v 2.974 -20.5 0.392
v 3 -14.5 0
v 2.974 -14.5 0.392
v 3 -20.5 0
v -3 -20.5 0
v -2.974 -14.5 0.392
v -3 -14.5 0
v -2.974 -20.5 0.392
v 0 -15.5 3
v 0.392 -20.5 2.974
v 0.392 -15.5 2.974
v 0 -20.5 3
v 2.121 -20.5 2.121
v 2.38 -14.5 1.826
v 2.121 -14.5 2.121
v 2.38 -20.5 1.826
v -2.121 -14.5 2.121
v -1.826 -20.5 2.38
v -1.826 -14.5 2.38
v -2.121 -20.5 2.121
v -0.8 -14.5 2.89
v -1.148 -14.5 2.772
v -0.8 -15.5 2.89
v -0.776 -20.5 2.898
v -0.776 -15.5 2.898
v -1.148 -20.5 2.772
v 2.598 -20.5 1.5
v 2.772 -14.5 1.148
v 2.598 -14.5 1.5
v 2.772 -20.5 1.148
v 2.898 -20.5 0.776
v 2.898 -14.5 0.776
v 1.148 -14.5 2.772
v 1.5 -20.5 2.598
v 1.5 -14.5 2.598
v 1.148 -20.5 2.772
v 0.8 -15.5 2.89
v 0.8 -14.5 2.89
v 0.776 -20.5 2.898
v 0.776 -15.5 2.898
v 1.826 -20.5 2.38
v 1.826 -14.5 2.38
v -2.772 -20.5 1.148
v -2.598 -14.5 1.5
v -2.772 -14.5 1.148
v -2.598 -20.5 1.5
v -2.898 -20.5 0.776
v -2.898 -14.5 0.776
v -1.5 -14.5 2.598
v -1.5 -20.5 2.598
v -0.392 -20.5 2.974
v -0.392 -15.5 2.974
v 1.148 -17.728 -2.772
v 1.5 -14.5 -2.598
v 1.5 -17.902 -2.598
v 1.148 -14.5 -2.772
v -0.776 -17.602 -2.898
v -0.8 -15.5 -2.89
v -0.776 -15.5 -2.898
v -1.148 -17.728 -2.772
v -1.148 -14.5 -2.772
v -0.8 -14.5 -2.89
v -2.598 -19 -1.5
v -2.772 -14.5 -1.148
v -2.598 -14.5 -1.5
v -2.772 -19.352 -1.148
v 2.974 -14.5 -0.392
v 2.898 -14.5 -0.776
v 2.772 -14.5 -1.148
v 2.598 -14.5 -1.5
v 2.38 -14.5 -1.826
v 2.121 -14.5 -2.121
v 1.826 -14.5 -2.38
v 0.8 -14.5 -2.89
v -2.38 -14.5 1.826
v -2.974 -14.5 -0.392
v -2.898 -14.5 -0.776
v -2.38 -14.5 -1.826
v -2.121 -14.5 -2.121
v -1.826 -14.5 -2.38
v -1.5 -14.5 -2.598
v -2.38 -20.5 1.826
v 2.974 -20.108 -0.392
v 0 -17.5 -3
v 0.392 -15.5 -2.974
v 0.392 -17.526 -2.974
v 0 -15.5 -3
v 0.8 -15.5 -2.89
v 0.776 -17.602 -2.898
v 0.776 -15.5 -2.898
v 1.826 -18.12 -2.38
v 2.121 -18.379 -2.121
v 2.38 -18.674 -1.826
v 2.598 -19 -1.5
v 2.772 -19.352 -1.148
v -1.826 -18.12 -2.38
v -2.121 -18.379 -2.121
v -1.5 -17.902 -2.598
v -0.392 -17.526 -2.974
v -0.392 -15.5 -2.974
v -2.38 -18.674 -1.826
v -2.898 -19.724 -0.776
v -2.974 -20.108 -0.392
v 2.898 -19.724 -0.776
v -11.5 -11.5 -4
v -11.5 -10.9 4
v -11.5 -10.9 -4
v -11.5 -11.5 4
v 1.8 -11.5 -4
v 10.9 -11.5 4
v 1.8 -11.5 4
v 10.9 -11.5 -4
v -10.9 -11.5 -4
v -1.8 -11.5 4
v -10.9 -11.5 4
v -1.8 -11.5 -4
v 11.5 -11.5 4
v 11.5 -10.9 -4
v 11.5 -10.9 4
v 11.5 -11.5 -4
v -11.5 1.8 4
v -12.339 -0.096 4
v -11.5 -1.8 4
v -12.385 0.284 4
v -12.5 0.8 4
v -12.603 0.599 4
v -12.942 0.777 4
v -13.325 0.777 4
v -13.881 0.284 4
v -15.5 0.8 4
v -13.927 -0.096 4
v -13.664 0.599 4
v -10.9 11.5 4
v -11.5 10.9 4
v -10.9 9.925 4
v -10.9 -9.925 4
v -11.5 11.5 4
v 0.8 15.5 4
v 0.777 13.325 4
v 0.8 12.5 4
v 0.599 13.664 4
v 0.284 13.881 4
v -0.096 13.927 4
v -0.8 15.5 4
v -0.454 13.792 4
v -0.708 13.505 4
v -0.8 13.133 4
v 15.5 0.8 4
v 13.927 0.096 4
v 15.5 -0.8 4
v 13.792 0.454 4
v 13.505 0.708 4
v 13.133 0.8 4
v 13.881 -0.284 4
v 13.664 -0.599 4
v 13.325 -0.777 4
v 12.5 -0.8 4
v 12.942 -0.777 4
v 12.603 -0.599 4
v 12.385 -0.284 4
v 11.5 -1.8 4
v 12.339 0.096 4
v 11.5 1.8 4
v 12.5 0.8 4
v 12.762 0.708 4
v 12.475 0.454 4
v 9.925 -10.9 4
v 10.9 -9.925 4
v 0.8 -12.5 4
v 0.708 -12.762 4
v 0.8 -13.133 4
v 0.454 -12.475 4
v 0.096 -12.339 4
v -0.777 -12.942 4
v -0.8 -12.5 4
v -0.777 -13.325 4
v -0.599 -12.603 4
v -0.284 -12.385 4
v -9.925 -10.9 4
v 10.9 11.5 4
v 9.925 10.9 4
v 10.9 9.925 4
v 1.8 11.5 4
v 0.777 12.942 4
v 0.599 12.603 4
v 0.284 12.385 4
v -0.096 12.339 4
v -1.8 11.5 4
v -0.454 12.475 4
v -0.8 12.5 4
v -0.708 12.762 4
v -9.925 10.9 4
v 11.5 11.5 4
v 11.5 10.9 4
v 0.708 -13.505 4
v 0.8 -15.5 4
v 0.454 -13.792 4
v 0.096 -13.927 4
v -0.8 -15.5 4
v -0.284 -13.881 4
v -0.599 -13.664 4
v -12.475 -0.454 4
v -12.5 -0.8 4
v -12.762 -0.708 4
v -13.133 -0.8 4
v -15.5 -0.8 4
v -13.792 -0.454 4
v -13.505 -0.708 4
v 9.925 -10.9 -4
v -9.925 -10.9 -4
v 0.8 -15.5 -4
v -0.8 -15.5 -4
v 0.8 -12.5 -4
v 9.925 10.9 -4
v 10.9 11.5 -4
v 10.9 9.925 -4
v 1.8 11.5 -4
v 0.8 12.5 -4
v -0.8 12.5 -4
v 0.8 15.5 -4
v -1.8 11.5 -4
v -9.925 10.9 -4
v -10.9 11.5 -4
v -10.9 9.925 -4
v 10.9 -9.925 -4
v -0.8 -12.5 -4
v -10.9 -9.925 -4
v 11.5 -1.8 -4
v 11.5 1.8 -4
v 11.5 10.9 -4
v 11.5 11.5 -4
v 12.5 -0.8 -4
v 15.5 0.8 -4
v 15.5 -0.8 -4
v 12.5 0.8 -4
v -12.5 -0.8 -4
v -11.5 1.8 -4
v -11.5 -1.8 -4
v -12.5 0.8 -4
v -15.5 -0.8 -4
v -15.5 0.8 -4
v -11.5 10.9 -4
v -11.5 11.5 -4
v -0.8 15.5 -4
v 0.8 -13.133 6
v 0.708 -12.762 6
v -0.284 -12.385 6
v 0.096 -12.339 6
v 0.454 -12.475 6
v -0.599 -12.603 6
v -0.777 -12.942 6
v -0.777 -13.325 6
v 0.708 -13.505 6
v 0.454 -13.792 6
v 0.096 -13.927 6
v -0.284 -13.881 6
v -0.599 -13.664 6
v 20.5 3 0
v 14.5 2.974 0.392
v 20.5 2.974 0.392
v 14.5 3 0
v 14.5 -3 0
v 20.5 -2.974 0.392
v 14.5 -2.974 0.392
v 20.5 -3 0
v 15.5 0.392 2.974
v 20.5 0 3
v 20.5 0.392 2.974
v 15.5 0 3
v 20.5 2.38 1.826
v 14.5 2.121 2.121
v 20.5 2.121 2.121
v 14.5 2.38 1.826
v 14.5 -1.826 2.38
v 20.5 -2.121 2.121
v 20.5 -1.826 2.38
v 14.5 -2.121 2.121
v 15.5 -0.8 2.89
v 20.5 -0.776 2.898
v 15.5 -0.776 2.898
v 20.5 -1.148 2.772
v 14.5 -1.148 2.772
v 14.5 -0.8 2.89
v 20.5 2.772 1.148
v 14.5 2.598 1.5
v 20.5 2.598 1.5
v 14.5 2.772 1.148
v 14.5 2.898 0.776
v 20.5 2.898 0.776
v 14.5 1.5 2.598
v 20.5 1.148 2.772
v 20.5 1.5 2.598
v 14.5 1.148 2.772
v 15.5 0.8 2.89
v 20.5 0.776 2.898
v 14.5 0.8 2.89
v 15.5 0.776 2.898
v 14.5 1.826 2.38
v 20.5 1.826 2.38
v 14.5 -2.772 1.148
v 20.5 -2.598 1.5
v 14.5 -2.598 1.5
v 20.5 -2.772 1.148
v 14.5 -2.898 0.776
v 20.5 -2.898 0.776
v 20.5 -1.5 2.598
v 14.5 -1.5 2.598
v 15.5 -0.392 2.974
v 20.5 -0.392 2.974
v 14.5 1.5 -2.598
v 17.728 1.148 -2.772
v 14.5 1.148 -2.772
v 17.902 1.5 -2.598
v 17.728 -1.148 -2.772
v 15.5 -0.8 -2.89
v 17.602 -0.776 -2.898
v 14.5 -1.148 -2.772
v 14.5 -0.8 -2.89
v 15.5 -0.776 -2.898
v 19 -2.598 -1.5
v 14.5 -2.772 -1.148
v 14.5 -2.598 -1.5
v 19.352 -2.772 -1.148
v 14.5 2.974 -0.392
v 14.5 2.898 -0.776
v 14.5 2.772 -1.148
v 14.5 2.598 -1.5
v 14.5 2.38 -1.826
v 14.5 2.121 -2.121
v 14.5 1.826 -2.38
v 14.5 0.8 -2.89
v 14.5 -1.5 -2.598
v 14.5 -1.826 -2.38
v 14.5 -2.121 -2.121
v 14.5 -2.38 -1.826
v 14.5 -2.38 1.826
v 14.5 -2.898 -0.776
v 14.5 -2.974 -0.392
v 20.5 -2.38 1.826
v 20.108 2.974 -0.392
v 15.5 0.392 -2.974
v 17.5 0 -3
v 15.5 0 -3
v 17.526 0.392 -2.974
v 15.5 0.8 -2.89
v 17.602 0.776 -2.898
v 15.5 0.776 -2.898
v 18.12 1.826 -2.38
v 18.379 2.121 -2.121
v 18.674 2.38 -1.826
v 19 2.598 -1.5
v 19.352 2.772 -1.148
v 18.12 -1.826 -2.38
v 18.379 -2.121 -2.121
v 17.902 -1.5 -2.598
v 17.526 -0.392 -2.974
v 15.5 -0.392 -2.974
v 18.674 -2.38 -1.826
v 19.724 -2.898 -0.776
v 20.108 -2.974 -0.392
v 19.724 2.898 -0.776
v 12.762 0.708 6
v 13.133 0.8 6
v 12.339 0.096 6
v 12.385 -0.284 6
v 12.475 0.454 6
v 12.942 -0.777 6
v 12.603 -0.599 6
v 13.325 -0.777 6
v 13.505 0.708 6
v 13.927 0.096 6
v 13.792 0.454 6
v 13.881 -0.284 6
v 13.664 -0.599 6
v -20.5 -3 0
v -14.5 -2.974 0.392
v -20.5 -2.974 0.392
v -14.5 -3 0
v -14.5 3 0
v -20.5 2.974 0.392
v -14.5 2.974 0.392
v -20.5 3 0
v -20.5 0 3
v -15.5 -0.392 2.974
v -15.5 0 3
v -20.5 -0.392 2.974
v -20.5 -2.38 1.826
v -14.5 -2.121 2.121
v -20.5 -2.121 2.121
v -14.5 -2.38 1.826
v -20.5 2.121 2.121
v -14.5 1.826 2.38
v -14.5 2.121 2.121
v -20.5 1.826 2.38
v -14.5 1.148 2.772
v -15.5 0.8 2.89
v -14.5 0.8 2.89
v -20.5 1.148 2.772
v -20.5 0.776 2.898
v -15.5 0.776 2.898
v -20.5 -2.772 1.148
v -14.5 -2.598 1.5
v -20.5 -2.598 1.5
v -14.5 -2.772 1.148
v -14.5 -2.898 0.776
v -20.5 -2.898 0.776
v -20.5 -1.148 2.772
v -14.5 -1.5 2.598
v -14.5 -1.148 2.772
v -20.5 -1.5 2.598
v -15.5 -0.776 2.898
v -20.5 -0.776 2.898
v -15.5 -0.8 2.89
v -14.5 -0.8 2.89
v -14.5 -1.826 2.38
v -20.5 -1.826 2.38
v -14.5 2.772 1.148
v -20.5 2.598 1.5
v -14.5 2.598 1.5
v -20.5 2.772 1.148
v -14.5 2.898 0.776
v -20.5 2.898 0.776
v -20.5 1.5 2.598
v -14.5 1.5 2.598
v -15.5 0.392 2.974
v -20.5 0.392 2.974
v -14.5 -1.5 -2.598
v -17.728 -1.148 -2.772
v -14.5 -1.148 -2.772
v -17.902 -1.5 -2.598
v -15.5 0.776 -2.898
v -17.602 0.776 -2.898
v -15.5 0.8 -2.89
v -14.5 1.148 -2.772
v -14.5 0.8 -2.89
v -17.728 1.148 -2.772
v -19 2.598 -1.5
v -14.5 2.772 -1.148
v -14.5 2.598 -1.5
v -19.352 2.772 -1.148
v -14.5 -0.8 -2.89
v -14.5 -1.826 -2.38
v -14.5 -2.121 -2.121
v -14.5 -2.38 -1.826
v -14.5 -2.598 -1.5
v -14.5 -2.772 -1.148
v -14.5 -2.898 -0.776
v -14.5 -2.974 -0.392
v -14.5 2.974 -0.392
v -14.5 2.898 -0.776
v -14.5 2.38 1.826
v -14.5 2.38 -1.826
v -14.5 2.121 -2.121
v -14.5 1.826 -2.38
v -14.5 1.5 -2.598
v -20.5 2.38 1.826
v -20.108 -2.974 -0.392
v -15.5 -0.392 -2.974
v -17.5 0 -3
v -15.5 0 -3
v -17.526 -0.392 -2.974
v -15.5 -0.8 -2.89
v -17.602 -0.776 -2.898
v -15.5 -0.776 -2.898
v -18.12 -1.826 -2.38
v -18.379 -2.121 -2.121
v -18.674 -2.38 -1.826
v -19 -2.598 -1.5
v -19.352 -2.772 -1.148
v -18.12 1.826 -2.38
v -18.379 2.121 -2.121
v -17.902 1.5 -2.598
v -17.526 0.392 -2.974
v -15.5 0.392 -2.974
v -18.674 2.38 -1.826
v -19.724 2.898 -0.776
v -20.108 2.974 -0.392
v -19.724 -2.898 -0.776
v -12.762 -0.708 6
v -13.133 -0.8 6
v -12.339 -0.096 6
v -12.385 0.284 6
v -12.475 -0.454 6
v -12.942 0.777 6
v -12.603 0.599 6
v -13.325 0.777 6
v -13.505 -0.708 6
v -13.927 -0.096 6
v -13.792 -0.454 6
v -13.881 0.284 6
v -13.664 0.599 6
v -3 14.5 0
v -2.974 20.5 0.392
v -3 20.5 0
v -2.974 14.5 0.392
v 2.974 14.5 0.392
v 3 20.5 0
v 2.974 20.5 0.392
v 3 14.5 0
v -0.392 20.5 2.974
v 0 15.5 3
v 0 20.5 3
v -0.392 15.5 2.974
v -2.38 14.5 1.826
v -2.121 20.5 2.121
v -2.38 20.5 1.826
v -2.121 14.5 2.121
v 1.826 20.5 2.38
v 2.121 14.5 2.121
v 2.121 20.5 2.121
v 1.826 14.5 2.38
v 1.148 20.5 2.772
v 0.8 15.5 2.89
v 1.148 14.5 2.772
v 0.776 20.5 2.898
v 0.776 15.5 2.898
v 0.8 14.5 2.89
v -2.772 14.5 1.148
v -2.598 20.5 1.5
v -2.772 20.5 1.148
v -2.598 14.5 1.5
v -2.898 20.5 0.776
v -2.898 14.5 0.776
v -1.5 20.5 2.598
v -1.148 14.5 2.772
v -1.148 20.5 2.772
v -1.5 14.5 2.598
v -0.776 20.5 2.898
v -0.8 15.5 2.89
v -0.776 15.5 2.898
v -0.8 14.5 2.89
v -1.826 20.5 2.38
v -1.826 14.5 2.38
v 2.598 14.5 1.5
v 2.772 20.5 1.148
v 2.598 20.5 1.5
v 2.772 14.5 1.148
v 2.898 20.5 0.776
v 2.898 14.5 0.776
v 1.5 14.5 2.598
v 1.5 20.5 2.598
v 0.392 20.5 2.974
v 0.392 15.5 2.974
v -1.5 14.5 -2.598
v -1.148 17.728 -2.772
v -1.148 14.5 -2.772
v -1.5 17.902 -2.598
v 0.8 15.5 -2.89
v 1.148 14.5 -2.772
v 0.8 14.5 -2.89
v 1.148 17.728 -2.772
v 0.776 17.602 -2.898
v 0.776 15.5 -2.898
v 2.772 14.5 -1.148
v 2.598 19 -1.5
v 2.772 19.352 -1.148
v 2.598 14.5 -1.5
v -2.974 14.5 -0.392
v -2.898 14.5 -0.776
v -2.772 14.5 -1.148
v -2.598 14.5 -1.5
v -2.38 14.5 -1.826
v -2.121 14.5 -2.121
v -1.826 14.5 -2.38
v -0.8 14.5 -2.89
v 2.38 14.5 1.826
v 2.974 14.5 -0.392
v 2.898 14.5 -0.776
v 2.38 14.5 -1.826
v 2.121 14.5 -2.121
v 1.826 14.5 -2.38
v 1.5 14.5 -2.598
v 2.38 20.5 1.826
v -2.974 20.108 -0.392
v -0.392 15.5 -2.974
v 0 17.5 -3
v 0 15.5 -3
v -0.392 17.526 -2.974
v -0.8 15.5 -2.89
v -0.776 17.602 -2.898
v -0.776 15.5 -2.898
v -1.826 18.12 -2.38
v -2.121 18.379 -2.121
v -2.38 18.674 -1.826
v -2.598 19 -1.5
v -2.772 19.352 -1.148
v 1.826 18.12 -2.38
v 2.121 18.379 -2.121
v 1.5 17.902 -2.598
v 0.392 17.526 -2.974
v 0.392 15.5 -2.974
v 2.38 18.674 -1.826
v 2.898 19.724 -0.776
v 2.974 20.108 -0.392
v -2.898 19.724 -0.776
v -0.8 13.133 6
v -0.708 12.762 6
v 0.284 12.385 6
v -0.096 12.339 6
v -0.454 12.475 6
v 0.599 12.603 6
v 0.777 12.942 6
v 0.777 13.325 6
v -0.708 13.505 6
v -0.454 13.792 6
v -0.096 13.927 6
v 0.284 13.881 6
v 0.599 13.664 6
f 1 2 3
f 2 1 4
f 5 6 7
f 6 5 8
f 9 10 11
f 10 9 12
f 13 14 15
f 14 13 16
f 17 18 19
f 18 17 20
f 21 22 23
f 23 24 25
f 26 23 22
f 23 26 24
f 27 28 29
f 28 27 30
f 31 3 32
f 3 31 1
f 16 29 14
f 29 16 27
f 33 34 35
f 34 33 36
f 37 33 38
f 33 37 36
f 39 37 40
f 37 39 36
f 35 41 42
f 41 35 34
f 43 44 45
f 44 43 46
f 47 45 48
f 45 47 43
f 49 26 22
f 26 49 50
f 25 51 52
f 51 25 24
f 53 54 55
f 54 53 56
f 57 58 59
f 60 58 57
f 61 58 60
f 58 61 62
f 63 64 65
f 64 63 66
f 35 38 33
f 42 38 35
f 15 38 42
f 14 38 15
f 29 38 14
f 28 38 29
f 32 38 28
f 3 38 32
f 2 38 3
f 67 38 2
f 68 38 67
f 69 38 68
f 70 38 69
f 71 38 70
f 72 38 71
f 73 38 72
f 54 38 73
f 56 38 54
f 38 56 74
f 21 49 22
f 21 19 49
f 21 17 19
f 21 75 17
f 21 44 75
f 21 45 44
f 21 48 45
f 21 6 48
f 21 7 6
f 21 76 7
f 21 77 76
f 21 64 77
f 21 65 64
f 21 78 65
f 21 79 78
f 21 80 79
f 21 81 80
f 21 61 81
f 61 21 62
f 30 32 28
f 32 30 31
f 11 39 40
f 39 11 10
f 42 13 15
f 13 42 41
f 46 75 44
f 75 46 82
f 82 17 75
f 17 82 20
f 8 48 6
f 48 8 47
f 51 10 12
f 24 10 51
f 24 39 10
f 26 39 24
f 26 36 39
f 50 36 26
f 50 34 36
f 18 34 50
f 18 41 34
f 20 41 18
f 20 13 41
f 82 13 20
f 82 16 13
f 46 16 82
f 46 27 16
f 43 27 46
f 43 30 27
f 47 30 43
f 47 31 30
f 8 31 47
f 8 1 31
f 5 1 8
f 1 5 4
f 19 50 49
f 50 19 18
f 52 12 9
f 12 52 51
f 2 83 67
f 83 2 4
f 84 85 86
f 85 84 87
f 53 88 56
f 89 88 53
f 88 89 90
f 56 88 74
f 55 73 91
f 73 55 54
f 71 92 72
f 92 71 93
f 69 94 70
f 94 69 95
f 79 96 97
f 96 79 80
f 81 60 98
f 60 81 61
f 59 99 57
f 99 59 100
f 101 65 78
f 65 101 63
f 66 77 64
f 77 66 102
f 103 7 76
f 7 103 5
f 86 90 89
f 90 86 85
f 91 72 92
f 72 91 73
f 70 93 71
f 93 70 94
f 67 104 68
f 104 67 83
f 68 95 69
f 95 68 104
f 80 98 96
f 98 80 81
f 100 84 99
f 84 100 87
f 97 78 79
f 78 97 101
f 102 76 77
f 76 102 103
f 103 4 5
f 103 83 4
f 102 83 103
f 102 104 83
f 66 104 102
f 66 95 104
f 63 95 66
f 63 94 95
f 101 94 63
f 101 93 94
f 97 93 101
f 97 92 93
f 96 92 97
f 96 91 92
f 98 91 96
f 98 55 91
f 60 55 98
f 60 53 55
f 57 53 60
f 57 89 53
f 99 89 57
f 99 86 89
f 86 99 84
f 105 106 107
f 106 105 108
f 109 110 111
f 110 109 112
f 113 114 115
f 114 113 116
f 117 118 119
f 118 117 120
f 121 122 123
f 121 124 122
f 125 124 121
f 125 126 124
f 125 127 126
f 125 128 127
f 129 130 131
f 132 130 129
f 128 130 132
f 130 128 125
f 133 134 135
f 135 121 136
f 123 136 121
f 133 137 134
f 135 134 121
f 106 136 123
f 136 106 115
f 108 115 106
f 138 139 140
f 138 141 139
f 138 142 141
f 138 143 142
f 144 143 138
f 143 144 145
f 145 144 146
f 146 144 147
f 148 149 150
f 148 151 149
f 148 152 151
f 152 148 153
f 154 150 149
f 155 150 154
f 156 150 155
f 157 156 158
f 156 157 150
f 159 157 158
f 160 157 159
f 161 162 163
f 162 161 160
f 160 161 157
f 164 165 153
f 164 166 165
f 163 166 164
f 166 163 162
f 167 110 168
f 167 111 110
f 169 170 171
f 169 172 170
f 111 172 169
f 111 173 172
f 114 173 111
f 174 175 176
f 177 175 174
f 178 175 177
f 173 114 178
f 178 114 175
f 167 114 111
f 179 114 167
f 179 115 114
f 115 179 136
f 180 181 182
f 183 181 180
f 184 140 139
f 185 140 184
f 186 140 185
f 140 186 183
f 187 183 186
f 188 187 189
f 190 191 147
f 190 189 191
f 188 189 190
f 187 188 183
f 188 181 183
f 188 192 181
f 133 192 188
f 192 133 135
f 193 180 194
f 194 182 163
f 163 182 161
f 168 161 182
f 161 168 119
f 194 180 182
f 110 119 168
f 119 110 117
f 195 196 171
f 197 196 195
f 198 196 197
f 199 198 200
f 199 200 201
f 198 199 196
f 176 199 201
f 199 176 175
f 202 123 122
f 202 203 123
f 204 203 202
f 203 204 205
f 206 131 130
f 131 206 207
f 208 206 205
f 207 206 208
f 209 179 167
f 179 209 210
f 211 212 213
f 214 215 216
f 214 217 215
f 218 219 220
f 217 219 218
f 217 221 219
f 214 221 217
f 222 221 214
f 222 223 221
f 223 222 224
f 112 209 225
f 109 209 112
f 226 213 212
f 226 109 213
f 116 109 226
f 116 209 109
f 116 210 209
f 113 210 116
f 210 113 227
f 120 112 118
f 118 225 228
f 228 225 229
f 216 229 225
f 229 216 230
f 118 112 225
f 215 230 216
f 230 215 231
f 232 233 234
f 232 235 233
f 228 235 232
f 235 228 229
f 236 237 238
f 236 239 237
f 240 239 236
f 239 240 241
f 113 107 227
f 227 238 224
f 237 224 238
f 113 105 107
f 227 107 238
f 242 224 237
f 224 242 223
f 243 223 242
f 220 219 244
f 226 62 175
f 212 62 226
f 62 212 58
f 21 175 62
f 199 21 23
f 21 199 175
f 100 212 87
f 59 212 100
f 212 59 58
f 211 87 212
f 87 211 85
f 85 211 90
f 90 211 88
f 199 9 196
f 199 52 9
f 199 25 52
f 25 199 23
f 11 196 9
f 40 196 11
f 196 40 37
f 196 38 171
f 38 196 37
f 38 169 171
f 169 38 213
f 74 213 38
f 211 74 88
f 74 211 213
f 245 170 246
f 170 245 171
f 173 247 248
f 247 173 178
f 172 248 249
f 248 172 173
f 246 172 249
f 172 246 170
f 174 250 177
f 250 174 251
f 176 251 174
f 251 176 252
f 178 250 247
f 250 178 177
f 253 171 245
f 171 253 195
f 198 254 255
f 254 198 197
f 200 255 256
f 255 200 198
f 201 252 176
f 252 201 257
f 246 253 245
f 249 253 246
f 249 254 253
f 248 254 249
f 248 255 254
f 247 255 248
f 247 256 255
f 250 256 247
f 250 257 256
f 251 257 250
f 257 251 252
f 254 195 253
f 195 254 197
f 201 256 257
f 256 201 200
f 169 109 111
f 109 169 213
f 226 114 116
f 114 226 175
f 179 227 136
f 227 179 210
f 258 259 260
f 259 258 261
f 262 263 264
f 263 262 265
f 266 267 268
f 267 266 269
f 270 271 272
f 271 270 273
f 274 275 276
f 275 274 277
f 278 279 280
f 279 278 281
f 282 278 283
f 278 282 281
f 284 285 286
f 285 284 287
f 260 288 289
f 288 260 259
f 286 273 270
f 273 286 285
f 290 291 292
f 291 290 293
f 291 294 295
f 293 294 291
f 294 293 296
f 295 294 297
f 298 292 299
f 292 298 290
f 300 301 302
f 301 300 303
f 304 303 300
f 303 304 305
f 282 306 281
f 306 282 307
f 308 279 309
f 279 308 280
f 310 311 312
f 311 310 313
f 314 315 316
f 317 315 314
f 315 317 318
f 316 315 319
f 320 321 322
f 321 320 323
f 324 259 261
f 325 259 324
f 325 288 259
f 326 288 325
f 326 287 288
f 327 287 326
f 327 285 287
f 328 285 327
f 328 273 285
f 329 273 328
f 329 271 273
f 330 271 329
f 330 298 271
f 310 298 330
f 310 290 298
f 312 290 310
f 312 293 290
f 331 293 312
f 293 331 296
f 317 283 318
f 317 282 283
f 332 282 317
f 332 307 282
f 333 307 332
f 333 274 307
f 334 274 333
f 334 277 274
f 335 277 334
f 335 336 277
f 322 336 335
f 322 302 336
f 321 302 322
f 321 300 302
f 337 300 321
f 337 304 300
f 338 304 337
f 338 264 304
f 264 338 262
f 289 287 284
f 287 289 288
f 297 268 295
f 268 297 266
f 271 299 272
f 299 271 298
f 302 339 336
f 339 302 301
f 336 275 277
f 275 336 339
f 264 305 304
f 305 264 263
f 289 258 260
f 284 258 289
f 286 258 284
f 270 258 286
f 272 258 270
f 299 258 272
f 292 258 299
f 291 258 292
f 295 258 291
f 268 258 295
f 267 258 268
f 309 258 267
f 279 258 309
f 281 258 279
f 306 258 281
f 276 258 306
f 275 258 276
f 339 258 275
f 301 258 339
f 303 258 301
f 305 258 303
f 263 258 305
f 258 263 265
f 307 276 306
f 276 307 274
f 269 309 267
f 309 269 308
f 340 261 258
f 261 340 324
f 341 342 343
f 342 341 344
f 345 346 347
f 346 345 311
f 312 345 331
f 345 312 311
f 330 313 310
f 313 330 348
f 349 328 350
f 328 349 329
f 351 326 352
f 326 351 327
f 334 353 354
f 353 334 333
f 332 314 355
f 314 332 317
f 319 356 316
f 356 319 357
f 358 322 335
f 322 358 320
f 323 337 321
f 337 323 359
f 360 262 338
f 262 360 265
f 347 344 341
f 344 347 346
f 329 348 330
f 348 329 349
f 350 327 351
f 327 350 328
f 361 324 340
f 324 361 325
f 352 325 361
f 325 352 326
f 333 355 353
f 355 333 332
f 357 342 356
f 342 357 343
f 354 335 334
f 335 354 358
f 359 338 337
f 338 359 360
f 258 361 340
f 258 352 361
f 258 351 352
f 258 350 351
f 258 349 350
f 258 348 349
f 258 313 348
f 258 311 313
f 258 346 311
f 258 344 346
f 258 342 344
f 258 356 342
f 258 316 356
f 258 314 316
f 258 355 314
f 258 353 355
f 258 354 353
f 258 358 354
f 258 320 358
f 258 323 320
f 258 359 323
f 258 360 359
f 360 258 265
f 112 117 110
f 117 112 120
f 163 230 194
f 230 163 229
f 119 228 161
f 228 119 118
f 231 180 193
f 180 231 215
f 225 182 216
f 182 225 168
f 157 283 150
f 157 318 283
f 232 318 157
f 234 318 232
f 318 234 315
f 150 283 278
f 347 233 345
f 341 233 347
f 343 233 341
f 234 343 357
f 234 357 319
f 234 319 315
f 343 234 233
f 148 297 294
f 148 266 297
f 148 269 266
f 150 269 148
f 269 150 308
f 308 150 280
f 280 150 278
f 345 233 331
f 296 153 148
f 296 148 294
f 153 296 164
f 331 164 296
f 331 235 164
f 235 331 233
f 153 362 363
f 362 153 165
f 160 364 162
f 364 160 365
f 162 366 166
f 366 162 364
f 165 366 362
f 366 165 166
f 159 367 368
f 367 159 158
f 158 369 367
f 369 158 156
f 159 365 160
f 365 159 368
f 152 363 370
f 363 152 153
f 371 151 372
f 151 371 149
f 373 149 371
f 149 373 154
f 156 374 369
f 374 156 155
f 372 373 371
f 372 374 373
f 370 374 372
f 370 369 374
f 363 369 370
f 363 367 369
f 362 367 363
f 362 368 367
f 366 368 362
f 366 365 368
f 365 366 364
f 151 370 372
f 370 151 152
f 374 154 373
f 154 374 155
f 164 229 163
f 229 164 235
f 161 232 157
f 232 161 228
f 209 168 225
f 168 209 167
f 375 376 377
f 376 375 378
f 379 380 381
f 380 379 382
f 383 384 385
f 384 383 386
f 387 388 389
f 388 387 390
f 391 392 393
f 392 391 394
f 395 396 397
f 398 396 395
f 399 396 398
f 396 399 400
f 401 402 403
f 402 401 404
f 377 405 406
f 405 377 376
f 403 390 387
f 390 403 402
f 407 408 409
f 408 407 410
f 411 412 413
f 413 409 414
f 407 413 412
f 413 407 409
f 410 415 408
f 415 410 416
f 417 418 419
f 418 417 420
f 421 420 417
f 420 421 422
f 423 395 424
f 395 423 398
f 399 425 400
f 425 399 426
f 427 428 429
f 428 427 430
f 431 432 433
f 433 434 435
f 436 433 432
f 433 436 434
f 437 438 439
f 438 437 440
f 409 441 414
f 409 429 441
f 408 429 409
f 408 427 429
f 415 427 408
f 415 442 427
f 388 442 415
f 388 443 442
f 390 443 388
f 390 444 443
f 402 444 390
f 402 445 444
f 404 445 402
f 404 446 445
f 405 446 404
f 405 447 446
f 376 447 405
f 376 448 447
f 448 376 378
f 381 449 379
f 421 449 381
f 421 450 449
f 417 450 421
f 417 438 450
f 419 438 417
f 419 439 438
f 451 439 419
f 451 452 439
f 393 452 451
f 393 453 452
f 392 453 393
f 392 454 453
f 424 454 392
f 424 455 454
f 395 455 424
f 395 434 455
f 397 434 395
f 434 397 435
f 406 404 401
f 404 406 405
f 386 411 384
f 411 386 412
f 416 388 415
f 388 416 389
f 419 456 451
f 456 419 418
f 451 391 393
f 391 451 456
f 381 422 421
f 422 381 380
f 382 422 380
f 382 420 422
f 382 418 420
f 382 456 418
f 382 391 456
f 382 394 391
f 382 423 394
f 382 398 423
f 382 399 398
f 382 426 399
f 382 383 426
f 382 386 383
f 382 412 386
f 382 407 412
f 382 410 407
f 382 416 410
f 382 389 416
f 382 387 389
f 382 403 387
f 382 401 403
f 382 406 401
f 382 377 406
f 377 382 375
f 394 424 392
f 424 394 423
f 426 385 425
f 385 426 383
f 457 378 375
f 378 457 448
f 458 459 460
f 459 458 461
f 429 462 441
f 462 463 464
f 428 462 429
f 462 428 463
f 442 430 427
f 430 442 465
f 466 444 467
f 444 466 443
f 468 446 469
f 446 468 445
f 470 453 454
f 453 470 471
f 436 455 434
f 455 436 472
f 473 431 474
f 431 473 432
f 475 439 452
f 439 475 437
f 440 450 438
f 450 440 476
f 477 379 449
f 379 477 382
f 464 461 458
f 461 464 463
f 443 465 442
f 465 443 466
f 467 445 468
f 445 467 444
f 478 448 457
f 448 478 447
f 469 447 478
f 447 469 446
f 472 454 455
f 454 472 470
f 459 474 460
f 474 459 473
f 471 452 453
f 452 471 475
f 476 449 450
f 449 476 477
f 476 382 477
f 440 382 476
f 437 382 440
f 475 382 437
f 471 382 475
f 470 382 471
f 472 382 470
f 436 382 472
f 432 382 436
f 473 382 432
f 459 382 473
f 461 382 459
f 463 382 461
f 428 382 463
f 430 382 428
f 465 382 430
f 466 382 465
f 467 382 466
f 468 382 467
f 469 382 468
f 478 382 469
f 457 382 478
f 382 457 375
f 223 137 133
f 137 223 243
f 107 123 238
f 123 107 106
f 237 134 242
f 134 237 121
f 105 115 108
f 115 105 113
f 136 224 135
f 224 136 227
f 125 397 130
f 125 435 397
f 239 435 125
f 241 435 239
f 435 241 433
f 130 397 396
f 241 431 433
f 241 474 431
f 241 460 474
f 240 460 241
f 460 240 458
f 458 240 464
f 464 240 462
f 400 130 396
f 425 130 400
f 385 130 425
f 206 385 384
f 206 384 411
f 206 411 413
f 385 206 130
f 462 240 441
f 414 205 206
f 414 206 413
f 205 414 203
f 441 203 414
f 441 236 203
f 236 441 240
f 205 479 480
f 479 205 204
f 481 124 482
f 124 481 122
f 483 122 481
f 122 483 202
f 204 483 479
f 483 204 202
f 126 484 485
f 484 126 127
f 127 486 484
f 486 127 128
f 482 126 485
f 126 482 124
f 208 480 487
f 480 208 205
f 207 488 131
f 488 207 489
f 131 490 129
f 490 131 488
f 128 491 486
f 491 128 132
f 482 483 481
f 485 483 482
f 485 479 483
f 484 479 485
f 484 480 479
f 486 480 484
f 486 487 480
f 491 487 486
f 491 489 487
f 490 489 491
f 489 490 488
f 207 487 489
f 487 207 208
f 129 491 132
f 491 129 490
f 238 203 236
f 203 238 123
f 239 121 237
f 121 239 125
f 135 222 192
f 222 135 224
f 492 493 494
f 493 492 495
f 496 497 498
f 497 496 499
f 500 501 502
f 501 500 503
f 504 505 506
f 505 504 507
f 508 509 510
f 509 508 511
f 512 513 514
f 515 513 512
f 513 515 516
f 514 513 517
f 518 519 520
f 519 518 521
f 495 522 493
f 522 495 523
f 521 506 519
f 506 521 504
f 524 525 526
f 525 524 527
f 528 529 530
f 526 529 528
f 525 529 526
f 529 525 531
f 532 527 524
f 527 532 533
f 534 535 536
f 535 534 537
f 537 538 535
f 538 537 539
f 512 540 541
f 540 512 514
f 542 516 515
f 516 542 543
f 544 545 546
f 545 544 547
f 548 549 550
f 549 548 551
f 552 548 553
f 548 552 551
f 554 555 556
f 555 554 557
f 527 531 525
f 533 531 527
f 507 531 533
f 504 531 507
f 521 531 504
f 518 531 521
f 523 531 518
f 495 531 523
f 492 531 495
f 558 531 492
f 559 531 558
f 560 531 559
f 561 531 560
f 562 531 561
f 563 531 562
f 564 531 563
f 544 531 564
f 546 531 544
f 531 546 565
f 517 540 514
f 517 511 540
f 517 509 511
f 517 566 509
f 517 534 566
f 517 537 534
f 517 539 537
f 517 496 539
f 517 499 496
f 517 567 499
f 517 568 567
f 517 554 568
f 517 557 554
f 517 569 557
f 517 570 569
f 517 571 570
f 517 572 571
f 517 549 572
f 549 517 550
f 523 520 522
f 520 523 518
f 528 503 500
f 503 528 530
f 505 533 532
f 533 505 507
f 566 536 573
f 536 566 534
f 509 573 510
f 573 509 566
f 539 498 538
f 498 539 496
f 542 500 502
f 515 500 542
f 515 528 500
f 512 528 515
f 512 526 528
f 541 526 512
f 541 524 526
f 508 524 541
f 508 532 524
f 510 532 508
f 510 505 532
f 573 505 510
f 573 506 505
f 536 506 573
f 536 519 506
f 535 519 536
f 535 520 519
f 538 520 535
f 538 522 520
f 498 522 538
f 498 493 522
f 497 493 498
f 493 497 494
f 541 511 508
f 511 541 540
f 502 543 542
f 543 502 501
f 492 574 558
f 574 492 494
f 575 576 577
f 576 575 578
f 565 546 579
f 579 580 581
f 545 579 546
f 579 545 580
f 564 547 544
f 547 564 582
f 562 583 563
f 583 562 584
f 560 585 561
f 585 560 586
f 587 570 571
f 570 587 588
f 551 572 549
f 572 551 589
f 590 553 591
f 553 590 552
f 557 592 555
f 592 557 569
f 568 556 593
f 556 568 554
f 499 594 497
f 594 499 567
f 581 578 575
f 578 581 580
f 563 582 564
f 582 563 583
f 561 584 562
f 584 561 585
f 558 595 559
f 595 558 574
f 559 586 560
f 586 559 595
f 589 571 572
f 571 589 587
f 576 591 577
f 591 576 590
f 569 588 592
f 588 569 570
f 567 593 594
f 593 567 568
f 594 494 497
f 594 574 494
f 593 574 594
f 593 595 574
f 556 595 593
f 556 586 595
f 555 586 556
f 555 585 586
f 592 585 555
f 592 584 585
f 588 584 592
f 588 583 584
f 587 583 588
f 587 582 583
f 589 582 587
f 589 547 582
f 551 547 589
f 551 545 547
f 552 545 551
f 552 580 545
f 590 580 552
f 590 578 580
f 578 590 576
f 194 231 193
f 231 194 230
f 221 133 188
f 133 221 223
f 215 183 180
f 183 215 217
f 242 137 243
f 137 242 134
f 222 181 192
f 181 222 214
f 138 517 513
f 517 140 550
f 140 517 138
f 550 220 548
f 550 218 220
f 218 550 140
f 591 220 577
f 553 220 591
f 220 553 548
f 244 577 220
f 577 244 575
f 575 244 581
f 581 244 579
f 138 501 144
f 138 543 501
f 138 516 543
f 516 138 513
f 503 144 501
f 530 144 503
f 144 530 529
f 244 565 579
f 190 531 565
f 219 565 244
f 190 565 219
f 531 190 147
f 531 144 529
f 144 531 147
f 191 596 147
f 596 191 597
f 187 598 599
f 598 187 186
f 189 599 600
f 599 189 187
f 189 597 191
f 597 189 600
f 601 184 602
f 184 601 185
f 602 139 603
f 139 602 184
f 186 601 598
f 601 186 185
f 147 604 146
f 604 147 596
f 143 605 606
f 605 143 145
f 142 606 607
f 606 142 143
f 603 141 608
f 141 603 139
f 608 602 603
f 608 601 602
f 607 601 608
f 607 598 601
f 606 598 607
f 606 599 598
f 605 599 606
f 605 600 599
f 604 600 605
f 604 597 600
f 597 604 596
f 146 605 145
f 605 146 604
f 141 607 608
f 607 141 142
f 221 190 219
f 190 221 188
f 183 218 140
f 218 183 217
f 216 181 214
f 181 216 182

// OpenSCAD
$fa = 1;
$fs = 0.4;

module part1()
{
    wall_thickness = 0.6;
    wall_length = 23;
    wall_depth = 8;
    support_length = 1.6;
    support_height = 4;
    support_overlap = 1;
    cylinder_radius = 3;
    cylinder_height = 6;
    support_side_length = 1;
    corner_side_length = 1.5;

    depth_stop_depth = 2;

    module corner(side_length) {
        linear_extrude(wall_depth) polygon(points=[[0,0], [0,side_length], [side_length,0]]);
    }

    translate([0,0,(wall_length-wall_thickness)/2]) {
        // wall
        cube([ wall_length, wall_depth, wall_thickness ], center = true);

        // cylinder support
        translate([ 0, 0, (support_height + wall_thickness)/2 ]) cube([ support_length, wall_depth, support_height ], center = true);

        // cut cylinder
        translate([0,0,support_height - support_overlap + wall_thickness / 2]) difference()
        {
            cylinder(h = cylinder_height, r = cylinder_radius);
            translate([ -cylinder_radius, -cylinder_radius, cylinder_height/2 ]) rotate([ 45, 0, 0 ]) cube(cylinder_height);
        }

        // depth stop
        translate([0,wall_depth/2,wall_thickness+support_height/3]) rotate([-90,0,0]) cylinder(r=support_length/2,h=depth_stop_depth);

        // corner reinforcement, on each side of support
        translate([support_length/2,-wall_depth/2,wall_thickness/2]) rotate([0,-90,-90]) corner(support_side_length);
        translate([-support_length/2,wall_depth/2,wall_thickness/2]) rotate([0,-90,90]) corner(support_side_length);

        // corner reinforcement, wall angle
        translate([-wall_length/2+corner_side_length/4,wall_depth/2,0]) rotate([0,90,-90]) corner(corner_side_length);
    }
}

rotate([ 90, 0, 0 ])
{
     part1();
     rotate([ 0, 90, 0 ]) part1();
     rotate([ 0, -90, 0 ]) part1();
     rotate([ 0, 180, 0 ]) part1();
}
